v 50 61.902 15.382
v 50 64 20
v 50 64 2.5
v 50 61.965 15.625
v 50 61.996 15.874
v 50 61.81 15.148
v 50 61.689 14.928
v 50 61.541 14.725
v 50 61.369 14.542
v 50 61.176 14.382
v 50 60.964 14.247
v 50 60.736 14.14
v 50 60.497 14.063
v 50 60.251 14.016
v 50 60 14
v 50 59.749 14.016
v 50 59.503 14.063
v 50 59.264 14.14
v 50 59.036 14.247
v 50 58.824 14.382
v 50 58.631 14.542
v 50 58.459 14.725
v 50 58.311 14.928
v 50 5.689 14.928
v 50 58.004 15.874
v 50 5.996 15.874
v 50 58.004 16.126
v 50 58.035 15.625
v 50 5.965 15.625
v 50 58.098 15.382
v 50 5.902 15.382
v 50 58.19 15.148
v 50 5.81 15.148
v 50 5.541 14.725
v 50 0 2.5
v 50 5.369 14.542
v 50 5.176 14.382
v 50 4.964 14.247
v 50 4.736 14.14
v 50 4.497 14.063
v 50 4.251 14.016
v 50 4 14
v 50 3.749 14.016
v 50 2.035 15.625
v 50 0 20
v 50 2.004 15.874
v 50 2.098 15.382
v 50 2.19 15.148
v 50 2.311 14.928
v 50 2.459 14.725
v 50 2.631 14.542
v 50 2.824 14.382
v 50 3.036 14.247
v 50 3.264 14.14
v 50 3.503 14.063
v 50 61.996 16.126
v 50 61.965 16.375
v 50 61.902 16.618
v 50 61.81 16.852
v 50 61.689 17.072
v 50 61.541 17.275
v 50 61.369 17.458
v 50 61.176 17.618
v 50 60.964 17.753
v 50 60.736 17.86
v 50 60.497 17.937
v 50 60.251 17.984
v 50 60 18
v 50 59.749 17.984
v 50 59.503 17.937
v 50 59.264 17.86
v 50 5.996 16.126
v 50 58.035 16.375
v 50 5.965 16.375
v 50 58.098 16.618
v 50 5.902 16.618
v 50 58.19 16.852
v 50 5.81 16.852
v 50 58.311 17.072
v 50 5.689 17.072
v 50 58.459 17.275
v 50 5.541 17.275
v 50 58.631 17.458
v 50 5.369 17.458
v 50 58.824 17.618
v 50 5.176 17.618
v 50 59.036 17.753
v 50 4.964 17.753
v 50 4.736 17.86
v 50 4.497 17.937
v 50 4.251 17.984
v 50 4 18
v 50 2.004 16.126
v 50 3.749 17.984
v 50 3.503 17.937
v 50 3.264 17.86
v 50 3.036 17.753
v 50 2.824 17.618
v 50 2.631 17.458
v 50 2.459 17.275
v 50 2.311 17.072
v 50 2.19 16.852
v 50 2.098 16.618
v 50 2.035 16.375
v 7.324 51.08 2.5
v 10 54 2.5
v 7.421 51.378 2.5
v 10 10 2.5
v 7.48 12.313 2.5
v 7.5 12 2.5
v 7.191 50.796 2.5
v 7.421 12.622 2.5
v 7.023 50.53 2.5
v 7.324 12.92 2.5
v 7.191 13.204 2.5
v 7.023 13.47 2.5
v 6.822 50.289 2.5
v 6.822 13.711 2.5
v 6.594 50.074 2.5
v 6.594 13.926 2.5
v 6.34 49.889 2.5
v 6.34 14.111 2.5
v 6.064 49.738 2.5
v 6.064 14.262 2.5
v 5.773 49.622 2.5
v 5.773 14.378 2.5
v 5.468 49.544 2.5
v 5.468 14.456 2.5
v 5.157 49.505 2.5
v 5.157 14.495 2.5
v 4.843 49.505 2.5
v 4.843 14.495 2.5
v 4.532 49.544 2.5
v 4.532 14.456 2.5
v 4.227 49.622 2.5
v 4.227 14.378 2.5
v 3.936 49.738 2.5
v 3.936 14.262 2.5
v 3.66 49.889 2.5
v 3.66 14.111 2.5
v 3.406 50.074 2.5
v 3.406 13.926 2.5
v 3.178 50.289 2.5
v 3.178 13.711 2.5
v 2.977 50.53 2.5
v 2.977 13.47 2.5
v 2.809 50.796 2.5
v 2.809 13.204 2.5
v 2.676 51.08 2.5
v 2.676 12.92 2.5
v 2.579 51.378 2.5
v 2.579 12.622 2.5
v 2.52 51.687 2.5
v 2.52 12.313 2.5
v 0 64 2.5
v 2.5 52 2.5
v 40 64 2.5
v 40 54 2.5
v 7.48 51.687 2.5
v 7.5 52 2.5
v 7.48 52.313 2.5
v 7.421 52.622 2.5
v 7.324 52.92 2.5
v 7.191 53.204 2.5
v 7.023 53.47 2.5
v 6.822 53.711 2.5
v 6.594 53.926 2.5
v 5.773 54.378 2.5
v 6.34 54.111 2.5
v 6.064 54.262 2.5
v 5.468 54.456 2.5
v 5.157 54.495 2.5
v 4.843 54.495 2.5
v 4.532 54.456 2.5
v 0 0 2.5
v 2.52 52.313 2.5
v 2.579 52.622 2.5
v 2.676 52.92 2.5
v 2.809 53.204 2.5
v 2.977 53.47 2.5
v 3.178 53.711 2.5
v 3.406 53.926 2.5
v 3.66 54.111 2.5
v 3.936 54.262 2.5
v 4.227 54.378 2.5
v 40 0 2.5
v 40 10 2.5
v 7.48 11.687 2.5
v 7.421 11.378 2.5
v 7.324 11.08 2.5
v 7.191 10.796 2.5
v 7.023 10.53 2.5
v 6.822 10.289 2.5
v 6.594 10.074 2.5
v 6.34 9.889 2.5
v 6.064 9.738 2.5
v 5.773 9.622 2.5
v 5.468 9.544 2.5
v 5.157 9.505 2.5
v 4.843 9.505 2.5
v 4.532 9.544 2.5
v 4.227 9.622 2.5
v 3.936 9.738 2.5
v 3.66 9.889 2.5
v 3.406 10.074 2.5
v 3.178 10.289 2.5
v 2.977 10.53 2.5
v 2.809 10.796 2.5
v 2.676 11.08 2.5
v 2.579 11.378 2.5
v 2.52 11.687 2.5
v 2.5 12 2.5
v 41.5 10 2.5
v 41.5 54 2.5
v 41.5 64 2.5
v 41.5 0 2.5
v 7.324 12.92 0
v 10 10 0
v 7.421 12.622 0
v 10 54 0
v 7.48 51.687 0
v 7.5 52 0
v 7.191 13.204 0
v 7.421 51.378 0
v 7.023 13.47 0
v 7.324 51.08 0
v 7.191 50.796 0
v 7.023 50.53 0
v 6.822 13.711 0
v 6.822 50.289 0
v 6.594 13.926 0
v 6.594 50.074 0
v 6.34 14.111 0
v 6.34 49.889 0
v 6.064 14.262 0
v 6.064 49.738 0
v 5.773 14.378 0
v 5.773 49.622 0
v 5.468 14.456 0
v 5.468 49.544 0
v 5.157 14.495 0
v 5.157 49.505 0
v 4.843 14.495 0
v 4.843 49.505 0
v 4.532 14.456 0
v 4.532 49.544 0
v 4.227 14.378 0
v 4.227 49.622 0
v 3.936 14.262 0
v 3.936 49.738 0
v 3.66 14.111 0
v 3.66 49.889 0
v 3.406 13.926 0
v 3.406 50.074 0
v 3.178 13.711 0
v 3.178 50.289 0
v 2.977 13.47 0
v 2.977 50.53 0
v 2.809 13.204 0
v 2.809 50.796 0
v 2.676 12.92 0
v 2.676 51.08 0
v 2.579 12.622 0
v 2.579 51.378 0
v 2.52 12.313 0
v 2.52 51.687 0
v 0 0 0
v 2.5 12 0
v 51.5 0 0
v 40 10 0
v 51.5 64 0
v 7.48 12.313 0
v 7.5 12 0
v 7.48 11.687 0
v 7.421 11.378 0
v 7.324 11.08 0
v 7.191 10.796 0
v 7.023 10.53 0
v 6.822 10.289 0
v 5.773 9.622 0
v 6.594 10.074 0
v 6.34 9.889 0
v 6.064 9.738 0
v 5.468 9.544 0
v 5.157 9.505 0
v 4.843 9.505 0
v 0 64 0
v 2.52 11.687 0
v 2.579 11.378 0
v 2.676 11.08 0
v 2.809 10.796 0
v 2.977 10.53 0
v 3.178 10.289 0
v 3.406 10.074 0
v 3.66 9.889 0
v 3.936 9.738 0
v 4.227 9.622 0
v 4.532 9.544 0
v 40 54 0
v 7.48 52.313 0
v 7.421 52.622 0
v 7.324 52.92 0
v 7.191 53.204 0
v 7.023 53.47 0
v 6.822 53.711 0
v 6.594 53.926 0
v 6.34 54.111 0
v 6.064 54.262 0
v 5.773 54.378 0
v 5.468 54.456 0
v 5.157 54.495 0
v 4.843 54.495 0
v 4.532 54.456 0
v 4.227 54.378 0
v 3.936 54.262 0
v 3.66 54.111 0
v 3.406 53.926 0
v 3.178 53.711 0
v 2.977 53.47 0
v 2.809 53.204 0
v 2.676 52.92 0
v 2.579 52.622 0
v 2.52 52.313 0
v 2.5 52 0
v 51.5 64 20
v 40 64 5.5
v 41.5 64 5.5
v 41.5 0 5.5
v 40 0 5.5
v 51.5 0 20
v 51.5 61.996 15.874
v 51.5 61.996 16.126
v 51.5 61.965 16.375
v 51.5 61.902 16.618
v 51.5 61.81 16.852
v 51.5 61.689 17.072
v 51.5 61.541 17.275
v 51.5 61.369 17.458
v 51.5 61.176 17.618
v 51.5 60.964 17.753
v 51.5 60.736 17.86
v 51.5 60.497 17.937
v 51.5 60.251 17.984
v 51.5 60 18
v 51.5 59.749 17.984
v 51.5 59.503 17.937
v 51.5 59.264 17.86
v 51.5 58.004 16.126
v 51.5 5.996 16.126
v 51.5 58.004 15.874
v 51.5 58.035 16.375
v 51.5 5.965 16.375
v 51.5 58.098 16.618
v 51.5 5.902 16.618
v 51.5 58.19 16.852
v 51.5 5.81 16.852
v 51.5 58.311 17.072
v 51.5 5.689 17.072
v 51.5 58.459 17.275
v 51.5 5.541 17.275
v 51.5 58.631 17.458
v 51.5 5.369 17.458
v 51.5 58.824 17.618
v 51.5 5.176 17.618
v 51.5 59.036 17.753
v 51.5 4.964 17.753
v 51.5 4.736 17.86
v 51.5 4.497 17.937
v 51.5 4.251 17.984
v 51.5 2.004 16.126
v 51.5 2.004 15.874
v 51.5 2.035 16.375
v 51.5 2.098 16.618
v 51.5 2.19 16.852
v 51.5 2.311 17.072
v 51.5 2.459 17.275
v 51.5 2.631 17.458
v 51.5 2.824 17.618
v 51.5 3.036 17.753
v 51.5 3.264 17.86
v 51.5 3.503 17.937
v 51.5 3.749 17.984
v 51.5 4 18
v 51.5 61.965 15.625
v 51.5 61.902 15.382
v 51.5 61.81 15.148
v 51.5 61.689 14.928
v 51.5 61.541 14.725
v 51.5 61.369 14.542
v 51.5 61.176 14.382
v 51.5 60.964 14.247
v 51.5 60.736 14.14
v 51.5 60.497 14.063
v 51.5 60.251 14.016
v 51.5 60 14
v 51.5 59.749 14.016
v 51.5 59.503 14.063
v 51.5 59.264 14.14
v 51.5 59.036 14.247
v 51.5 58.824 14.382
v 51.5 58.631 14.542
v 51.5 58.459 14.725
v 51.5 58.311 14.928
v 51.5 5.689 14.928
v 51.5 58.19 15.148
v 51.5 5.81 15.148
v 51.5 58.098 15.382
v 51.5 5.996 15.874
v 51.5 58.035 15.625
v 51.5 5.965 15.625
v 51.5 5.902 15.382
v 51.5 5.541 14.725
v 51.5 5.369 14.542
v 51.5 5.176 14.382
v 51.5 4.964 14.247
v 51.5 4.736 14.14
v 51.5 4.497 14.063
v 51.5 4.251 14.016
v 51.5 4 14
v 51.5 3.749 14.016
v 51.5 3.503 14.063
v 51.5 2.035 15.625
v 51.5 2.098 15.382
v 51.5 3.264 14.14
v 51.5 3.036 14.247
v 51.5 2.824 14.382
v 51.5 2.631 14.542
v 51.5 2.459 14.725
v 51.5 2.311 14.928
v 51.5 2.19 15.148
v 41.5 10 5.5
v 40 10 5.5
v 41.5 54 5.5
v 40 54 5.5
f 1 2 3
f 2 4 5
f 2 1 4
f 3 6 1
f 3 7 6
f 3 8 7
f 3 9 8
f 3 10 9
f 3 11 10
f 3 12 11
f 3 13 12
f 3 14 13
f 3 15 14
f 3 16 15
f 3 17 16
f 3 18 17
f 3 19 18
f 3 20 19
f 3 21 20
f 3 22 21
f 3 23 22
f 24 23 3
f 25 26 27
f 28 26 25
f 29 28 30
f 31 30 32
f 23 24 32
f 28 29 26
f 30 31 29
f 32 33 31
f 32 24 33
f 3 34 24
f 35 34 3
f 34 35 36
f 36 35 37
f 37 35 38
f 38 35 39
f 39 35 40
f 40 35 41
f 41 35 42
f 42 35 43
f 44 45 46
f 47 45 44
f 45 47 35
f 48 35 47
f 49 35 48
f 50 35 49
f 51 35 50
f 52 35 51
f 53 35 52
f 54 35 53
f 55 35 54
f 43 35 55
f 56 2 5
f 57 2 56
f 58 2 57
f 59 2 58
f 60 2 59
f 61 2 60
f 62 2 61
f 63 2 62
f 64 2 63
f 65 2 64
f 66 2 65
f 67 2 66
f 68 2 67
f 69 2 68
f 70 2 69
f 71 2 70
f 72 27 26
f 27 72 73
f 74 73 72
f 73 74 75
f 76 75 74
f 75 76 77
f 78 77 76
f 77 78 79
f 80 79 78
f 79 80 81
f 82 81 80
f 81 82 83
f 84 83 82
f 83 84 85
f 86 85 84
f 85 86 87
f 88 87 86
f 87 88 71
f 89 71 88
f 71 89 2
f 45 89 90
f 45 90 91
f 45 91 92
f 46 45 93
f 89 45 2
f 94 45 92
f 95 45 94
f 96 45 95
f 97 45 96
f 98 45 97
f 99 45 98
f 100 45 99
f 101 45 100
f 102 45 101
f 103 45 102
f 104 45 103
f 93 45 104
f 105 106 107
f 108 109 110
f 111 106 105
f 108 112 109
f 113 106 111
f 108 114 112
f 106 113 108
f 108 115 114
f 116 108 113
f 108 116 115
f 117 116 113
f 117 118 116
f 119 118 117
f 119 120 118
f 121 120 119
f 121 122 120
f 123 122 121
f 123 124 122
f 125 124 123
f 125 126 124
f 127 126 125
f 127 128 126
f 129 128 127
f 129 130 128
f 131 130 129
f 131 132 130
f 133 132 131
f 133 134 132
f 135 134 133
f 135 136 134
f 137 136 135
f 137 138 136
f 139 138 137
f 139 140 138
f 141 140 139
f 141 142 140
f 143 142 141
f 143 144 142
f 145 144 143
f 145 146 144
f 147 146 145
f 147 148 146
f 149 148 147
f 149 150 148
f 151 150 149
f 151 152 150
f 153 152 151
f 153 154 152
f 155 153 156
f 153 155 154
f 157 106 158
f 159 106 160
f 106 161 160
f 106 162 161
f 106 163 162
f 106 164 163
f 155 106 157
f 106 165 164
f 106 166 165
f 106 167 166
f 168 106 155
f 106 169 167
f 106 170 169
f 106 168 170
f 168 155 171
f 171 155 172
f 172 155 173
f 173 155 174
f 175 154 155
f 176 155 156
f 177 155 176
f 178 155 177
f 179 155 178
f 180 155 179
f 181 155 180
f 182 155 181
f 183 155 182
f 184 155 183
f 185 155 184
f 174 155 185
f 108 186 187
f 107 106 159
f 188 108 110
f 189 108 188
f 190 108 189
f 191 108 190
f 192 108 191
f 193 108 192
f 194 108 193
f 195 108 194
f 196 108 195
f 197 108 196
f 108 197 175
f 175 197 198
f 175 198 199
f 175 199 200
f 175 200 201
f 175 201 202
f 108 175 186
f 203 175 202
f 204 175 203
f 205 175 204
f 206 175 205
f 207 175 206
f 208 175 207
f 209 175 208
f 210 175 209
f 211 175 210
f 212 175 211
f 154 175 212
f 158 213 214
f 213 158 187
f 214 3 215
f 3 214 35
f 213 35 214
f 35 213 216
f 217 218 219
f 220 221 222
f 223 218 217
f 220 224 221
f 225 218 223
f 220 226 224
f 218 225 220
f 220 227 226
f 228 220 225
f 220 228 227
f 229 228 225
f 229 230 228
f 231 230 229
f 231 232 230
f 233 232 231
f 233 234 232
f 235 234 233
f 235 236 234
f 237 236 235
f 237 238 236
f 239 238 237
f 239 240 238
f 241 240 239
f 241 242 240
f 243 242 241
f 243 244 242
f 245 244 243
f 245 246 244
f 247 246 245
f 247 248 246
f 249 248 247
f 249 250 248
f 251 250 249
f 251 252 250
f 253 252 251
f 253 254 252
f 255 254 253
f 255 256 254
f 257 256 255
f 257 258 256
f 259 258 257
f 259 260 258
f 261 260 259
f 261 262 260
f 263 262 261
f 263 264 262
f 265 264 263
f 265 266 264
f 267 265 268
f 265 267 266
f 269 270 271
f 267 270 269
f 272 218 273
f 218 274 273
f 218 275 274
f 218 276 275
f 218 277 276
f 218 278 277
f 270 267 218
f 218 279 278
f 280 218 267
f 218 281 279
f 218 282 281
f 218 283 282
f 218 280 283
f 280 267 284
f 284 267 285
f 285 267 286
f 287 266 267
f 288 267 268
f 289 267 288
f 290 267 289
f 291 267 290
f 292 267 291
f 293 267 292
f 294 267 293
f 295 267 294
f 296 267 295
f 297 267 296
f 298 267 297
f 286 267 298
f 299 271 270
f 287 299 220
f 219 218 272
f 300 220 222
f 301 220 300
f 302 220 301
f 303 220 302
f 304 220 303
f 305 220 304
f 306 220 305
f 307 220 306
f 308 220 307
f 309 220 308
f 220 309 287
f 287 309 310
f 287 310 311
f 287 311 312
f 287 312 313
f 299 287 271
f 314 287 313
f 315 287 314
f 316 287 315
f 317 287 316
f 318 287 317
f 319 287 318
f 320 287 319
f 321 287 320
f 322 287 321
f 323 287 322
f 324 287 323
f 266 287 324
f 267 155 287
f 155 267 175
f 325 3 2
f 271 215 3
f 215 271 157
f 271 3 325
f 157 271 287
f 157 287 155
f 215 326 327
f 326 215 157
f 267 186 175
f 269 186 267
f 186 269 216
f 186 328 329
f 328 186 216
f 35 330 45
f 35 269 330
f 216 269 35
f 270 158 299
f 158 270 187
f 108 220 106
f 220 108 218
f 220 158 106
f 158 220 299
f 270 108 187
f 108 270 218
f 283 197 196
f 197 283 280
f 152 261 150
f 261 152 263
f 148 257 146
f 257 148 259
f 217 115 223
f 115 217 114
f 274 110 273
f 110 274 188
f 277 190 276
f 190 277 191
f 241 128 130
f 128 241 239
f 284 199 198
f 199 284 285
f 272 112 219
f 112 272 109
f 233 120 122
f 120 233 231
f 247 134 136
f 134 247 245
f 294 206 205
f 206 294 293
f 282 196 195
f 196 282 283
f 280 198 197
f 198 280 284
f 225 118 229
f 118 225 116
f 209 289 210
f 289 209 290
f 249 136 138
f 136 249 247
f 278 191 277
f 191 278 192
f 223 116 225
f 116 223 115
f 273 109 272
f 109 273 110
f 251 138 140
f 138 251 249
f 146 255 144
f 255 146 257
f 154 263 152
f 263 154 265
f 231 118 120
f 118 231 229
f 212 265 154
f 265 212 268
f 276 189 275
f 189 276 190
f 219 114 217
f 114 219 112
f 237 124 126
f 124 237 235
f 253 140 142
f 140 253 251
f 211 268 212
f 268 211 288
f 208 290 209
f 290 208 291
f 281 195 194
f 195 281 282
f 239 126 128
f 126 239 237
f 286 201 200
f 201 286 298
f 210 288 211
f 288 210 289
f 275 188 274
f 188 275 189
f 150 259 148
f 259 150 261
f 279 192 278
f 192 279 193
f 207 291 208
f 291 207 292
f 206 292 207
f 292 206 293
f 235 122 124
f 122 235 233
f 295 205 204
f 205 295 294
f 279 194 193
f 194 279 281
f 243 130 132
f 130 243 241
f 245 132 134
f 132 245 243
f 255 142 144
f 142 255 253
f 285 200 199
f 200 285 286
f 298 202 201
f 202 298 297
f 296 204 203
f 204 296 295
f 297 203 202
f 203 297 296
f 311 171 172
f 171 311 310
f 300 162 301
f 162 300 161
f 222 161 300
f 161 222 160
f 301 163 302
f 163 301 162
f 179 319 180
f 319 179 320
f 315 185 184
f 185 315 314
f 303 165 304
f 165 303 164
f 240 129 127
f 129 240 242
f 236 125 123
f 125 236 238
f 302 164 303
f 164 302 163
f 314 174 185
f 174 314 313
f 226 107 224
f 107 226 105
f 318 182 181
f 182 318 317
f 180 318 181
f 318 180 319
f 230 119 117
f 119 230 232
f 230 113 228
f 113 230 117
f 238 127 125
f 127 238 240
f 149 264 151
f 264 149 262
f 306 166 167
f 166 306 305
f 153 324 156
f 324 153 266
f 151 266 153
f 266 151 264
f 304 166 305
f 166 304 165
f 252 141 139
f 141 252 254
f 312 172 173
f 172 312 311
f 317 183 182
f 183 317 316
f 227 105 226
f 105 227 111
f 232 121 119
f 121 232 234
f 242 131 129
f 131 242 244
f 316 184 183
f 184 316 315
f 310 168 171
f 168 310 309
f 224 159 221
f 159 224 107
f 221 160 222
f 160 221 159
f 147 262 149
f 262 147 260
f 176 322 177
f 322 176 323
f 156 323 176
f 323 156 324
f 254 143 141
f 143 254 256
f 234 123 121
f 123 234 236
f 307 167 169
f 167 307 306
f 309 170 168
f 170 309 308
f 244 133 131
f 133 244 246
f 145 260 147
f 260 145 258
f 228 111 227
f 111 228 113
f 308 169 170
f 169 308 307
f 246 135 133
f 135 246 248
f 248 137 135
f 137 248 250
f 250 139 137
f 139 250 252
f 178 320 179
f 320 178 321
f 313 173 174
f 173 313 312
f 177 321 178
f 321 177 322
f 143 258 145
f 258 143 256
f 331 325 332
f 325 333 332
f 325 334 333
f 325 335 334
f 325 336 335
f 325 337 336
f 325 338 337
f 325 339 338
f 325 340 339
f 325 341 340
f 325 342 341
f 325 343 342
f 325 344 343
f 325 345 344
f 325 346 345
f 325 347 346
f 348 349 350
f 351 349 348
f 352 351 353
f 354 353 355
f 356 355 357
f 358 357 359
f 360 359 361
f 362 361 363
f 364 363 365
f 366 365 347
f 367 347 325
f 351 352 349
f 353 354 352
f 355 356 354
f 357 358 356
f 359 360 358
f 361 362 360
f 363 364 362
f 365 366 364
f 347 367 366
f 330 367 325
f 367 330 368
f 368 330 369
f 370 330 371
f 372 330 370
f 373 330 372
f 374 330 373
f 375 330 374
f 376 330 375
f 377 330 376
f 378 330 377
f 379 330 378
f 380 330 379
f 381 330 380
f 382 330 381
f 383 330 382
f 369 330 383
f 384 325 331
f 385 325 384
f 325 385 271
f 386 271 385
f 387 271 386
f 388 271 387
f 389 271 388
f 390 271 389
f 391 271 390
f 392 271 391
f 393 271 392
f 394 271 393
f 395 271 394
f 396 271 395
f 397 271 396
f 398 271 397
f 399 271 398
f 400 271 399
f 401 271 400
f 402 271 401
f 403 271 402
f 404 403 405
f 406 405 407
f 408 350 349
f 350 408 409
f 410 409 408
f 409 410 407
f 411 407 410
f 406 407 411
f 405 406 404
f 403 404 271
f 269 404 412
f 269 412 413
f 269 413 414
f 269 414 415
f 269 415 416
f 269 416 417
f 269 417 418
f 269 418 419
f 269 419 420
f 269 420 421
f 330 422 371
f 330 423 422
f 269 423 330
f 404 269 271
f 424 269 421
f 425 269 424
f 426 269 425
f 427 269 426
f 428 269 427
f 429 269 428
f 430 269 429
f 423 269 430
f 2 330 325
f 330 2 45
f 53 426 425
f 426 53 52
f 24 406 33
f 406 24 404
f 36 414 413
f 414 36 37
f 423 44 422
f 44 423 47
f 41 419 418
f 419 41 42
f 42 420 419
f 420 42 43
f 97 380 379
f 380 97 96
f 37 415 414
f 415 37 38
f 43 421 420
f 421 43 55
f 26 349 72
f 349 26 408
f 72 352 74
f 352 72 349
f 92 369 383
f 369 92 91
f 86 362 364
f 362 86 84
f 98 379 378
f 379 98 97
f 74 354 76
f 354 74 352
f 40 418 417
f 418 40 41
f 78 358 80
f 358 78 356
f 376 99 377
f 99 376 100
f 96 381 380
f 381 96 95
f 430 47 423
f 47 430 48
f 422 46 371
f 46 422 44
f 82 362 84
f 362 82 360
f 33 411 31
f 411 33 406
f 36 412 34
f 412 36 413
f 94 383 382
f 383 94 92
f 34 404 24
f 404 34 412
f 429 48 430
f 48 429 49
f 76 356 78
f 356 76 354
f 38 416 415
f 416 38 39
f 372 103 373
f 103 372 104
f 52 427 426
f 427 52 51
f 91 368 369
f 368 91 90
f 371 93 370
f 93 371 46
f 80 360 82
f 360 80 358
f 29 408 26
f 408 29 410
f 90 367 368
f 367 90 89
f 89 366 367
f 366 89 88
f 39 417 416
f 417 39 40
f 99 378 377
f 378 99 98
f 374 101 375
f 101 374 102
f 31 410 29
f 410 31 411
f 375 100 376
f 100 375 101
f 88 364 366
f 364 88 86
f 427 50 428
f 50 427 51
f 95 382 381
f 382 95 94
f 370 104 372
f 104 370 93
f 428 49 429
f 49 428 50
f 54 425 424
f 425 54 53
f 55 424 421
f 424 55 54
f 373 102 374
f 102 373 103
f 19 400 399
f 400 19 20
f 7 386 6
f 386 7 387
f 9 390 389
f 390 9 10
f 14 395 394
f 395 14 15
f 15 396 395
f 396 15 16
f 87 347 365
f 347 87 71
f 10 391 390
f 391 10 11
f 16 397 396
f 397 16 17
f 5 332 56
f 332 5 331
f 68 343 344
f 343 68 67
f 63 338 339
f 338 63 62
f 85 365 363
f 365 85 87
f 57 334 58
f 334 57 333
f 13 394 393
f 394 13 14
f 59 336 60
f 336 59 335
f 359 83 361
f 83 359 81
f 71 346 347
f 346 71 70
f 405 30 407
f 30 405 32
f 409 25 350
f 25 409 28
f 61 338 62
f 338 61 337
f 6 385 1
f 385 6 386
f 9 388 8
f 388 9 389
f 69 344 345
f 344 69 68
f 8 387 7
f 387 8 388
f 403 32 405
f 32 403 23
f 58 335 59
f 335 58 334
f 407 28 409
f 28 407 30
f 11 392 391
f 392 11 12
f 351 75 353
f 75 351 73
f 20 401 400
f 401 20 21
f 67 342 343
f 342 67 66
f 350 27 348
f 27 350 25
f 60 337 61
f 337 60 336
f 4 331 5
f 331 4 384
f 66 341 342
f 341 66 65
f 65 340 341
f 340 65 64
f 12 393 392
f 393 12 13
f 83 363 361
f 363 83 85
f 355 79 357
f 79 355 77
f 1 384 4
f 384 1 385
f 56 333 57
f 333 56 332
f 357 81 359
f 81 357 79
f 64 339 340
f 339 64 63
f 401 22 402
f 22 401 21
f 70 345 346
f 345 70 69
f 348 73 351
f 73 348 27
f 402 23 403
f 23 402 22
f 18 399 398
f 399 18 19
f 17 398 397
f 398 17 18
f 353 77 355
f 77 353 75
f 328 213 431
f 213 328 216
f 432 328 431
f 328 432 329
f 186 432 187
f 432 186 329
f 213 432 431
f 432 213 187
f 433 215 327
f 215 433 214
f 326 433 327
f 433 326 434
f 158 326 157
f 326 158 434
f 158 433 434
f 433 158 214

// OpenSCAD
difference()
{
	cube([50,64,2.5], false);
	translate([10, 10])
		cube([30,44,2.5], false);
	
	translate([5, 12])
		cylinder(2.5, 2.5, 2.5, false, $fn=50);
	translate([5, 52])
		cylinder(2.5, 2.5, 2.5, false, $fn=50);
}

difference()
{
	translate([50, 0])
		cube([1.5,64,20], false);
	
	translate([50, 4, 16])
		rotate([0,90,0])
			cylinder(1.5, 2, 2, false, $fn=50);
	
	translate([50, 60, 16])
		rotate([0,90,0])
			cylinder(1.5, 2, 2, false, $fn=50);
}

translate([40, 0])
	cube([1.5,10,5.5], false);

translate([40, 54])
	cube([1.5,10,5.5], false);
